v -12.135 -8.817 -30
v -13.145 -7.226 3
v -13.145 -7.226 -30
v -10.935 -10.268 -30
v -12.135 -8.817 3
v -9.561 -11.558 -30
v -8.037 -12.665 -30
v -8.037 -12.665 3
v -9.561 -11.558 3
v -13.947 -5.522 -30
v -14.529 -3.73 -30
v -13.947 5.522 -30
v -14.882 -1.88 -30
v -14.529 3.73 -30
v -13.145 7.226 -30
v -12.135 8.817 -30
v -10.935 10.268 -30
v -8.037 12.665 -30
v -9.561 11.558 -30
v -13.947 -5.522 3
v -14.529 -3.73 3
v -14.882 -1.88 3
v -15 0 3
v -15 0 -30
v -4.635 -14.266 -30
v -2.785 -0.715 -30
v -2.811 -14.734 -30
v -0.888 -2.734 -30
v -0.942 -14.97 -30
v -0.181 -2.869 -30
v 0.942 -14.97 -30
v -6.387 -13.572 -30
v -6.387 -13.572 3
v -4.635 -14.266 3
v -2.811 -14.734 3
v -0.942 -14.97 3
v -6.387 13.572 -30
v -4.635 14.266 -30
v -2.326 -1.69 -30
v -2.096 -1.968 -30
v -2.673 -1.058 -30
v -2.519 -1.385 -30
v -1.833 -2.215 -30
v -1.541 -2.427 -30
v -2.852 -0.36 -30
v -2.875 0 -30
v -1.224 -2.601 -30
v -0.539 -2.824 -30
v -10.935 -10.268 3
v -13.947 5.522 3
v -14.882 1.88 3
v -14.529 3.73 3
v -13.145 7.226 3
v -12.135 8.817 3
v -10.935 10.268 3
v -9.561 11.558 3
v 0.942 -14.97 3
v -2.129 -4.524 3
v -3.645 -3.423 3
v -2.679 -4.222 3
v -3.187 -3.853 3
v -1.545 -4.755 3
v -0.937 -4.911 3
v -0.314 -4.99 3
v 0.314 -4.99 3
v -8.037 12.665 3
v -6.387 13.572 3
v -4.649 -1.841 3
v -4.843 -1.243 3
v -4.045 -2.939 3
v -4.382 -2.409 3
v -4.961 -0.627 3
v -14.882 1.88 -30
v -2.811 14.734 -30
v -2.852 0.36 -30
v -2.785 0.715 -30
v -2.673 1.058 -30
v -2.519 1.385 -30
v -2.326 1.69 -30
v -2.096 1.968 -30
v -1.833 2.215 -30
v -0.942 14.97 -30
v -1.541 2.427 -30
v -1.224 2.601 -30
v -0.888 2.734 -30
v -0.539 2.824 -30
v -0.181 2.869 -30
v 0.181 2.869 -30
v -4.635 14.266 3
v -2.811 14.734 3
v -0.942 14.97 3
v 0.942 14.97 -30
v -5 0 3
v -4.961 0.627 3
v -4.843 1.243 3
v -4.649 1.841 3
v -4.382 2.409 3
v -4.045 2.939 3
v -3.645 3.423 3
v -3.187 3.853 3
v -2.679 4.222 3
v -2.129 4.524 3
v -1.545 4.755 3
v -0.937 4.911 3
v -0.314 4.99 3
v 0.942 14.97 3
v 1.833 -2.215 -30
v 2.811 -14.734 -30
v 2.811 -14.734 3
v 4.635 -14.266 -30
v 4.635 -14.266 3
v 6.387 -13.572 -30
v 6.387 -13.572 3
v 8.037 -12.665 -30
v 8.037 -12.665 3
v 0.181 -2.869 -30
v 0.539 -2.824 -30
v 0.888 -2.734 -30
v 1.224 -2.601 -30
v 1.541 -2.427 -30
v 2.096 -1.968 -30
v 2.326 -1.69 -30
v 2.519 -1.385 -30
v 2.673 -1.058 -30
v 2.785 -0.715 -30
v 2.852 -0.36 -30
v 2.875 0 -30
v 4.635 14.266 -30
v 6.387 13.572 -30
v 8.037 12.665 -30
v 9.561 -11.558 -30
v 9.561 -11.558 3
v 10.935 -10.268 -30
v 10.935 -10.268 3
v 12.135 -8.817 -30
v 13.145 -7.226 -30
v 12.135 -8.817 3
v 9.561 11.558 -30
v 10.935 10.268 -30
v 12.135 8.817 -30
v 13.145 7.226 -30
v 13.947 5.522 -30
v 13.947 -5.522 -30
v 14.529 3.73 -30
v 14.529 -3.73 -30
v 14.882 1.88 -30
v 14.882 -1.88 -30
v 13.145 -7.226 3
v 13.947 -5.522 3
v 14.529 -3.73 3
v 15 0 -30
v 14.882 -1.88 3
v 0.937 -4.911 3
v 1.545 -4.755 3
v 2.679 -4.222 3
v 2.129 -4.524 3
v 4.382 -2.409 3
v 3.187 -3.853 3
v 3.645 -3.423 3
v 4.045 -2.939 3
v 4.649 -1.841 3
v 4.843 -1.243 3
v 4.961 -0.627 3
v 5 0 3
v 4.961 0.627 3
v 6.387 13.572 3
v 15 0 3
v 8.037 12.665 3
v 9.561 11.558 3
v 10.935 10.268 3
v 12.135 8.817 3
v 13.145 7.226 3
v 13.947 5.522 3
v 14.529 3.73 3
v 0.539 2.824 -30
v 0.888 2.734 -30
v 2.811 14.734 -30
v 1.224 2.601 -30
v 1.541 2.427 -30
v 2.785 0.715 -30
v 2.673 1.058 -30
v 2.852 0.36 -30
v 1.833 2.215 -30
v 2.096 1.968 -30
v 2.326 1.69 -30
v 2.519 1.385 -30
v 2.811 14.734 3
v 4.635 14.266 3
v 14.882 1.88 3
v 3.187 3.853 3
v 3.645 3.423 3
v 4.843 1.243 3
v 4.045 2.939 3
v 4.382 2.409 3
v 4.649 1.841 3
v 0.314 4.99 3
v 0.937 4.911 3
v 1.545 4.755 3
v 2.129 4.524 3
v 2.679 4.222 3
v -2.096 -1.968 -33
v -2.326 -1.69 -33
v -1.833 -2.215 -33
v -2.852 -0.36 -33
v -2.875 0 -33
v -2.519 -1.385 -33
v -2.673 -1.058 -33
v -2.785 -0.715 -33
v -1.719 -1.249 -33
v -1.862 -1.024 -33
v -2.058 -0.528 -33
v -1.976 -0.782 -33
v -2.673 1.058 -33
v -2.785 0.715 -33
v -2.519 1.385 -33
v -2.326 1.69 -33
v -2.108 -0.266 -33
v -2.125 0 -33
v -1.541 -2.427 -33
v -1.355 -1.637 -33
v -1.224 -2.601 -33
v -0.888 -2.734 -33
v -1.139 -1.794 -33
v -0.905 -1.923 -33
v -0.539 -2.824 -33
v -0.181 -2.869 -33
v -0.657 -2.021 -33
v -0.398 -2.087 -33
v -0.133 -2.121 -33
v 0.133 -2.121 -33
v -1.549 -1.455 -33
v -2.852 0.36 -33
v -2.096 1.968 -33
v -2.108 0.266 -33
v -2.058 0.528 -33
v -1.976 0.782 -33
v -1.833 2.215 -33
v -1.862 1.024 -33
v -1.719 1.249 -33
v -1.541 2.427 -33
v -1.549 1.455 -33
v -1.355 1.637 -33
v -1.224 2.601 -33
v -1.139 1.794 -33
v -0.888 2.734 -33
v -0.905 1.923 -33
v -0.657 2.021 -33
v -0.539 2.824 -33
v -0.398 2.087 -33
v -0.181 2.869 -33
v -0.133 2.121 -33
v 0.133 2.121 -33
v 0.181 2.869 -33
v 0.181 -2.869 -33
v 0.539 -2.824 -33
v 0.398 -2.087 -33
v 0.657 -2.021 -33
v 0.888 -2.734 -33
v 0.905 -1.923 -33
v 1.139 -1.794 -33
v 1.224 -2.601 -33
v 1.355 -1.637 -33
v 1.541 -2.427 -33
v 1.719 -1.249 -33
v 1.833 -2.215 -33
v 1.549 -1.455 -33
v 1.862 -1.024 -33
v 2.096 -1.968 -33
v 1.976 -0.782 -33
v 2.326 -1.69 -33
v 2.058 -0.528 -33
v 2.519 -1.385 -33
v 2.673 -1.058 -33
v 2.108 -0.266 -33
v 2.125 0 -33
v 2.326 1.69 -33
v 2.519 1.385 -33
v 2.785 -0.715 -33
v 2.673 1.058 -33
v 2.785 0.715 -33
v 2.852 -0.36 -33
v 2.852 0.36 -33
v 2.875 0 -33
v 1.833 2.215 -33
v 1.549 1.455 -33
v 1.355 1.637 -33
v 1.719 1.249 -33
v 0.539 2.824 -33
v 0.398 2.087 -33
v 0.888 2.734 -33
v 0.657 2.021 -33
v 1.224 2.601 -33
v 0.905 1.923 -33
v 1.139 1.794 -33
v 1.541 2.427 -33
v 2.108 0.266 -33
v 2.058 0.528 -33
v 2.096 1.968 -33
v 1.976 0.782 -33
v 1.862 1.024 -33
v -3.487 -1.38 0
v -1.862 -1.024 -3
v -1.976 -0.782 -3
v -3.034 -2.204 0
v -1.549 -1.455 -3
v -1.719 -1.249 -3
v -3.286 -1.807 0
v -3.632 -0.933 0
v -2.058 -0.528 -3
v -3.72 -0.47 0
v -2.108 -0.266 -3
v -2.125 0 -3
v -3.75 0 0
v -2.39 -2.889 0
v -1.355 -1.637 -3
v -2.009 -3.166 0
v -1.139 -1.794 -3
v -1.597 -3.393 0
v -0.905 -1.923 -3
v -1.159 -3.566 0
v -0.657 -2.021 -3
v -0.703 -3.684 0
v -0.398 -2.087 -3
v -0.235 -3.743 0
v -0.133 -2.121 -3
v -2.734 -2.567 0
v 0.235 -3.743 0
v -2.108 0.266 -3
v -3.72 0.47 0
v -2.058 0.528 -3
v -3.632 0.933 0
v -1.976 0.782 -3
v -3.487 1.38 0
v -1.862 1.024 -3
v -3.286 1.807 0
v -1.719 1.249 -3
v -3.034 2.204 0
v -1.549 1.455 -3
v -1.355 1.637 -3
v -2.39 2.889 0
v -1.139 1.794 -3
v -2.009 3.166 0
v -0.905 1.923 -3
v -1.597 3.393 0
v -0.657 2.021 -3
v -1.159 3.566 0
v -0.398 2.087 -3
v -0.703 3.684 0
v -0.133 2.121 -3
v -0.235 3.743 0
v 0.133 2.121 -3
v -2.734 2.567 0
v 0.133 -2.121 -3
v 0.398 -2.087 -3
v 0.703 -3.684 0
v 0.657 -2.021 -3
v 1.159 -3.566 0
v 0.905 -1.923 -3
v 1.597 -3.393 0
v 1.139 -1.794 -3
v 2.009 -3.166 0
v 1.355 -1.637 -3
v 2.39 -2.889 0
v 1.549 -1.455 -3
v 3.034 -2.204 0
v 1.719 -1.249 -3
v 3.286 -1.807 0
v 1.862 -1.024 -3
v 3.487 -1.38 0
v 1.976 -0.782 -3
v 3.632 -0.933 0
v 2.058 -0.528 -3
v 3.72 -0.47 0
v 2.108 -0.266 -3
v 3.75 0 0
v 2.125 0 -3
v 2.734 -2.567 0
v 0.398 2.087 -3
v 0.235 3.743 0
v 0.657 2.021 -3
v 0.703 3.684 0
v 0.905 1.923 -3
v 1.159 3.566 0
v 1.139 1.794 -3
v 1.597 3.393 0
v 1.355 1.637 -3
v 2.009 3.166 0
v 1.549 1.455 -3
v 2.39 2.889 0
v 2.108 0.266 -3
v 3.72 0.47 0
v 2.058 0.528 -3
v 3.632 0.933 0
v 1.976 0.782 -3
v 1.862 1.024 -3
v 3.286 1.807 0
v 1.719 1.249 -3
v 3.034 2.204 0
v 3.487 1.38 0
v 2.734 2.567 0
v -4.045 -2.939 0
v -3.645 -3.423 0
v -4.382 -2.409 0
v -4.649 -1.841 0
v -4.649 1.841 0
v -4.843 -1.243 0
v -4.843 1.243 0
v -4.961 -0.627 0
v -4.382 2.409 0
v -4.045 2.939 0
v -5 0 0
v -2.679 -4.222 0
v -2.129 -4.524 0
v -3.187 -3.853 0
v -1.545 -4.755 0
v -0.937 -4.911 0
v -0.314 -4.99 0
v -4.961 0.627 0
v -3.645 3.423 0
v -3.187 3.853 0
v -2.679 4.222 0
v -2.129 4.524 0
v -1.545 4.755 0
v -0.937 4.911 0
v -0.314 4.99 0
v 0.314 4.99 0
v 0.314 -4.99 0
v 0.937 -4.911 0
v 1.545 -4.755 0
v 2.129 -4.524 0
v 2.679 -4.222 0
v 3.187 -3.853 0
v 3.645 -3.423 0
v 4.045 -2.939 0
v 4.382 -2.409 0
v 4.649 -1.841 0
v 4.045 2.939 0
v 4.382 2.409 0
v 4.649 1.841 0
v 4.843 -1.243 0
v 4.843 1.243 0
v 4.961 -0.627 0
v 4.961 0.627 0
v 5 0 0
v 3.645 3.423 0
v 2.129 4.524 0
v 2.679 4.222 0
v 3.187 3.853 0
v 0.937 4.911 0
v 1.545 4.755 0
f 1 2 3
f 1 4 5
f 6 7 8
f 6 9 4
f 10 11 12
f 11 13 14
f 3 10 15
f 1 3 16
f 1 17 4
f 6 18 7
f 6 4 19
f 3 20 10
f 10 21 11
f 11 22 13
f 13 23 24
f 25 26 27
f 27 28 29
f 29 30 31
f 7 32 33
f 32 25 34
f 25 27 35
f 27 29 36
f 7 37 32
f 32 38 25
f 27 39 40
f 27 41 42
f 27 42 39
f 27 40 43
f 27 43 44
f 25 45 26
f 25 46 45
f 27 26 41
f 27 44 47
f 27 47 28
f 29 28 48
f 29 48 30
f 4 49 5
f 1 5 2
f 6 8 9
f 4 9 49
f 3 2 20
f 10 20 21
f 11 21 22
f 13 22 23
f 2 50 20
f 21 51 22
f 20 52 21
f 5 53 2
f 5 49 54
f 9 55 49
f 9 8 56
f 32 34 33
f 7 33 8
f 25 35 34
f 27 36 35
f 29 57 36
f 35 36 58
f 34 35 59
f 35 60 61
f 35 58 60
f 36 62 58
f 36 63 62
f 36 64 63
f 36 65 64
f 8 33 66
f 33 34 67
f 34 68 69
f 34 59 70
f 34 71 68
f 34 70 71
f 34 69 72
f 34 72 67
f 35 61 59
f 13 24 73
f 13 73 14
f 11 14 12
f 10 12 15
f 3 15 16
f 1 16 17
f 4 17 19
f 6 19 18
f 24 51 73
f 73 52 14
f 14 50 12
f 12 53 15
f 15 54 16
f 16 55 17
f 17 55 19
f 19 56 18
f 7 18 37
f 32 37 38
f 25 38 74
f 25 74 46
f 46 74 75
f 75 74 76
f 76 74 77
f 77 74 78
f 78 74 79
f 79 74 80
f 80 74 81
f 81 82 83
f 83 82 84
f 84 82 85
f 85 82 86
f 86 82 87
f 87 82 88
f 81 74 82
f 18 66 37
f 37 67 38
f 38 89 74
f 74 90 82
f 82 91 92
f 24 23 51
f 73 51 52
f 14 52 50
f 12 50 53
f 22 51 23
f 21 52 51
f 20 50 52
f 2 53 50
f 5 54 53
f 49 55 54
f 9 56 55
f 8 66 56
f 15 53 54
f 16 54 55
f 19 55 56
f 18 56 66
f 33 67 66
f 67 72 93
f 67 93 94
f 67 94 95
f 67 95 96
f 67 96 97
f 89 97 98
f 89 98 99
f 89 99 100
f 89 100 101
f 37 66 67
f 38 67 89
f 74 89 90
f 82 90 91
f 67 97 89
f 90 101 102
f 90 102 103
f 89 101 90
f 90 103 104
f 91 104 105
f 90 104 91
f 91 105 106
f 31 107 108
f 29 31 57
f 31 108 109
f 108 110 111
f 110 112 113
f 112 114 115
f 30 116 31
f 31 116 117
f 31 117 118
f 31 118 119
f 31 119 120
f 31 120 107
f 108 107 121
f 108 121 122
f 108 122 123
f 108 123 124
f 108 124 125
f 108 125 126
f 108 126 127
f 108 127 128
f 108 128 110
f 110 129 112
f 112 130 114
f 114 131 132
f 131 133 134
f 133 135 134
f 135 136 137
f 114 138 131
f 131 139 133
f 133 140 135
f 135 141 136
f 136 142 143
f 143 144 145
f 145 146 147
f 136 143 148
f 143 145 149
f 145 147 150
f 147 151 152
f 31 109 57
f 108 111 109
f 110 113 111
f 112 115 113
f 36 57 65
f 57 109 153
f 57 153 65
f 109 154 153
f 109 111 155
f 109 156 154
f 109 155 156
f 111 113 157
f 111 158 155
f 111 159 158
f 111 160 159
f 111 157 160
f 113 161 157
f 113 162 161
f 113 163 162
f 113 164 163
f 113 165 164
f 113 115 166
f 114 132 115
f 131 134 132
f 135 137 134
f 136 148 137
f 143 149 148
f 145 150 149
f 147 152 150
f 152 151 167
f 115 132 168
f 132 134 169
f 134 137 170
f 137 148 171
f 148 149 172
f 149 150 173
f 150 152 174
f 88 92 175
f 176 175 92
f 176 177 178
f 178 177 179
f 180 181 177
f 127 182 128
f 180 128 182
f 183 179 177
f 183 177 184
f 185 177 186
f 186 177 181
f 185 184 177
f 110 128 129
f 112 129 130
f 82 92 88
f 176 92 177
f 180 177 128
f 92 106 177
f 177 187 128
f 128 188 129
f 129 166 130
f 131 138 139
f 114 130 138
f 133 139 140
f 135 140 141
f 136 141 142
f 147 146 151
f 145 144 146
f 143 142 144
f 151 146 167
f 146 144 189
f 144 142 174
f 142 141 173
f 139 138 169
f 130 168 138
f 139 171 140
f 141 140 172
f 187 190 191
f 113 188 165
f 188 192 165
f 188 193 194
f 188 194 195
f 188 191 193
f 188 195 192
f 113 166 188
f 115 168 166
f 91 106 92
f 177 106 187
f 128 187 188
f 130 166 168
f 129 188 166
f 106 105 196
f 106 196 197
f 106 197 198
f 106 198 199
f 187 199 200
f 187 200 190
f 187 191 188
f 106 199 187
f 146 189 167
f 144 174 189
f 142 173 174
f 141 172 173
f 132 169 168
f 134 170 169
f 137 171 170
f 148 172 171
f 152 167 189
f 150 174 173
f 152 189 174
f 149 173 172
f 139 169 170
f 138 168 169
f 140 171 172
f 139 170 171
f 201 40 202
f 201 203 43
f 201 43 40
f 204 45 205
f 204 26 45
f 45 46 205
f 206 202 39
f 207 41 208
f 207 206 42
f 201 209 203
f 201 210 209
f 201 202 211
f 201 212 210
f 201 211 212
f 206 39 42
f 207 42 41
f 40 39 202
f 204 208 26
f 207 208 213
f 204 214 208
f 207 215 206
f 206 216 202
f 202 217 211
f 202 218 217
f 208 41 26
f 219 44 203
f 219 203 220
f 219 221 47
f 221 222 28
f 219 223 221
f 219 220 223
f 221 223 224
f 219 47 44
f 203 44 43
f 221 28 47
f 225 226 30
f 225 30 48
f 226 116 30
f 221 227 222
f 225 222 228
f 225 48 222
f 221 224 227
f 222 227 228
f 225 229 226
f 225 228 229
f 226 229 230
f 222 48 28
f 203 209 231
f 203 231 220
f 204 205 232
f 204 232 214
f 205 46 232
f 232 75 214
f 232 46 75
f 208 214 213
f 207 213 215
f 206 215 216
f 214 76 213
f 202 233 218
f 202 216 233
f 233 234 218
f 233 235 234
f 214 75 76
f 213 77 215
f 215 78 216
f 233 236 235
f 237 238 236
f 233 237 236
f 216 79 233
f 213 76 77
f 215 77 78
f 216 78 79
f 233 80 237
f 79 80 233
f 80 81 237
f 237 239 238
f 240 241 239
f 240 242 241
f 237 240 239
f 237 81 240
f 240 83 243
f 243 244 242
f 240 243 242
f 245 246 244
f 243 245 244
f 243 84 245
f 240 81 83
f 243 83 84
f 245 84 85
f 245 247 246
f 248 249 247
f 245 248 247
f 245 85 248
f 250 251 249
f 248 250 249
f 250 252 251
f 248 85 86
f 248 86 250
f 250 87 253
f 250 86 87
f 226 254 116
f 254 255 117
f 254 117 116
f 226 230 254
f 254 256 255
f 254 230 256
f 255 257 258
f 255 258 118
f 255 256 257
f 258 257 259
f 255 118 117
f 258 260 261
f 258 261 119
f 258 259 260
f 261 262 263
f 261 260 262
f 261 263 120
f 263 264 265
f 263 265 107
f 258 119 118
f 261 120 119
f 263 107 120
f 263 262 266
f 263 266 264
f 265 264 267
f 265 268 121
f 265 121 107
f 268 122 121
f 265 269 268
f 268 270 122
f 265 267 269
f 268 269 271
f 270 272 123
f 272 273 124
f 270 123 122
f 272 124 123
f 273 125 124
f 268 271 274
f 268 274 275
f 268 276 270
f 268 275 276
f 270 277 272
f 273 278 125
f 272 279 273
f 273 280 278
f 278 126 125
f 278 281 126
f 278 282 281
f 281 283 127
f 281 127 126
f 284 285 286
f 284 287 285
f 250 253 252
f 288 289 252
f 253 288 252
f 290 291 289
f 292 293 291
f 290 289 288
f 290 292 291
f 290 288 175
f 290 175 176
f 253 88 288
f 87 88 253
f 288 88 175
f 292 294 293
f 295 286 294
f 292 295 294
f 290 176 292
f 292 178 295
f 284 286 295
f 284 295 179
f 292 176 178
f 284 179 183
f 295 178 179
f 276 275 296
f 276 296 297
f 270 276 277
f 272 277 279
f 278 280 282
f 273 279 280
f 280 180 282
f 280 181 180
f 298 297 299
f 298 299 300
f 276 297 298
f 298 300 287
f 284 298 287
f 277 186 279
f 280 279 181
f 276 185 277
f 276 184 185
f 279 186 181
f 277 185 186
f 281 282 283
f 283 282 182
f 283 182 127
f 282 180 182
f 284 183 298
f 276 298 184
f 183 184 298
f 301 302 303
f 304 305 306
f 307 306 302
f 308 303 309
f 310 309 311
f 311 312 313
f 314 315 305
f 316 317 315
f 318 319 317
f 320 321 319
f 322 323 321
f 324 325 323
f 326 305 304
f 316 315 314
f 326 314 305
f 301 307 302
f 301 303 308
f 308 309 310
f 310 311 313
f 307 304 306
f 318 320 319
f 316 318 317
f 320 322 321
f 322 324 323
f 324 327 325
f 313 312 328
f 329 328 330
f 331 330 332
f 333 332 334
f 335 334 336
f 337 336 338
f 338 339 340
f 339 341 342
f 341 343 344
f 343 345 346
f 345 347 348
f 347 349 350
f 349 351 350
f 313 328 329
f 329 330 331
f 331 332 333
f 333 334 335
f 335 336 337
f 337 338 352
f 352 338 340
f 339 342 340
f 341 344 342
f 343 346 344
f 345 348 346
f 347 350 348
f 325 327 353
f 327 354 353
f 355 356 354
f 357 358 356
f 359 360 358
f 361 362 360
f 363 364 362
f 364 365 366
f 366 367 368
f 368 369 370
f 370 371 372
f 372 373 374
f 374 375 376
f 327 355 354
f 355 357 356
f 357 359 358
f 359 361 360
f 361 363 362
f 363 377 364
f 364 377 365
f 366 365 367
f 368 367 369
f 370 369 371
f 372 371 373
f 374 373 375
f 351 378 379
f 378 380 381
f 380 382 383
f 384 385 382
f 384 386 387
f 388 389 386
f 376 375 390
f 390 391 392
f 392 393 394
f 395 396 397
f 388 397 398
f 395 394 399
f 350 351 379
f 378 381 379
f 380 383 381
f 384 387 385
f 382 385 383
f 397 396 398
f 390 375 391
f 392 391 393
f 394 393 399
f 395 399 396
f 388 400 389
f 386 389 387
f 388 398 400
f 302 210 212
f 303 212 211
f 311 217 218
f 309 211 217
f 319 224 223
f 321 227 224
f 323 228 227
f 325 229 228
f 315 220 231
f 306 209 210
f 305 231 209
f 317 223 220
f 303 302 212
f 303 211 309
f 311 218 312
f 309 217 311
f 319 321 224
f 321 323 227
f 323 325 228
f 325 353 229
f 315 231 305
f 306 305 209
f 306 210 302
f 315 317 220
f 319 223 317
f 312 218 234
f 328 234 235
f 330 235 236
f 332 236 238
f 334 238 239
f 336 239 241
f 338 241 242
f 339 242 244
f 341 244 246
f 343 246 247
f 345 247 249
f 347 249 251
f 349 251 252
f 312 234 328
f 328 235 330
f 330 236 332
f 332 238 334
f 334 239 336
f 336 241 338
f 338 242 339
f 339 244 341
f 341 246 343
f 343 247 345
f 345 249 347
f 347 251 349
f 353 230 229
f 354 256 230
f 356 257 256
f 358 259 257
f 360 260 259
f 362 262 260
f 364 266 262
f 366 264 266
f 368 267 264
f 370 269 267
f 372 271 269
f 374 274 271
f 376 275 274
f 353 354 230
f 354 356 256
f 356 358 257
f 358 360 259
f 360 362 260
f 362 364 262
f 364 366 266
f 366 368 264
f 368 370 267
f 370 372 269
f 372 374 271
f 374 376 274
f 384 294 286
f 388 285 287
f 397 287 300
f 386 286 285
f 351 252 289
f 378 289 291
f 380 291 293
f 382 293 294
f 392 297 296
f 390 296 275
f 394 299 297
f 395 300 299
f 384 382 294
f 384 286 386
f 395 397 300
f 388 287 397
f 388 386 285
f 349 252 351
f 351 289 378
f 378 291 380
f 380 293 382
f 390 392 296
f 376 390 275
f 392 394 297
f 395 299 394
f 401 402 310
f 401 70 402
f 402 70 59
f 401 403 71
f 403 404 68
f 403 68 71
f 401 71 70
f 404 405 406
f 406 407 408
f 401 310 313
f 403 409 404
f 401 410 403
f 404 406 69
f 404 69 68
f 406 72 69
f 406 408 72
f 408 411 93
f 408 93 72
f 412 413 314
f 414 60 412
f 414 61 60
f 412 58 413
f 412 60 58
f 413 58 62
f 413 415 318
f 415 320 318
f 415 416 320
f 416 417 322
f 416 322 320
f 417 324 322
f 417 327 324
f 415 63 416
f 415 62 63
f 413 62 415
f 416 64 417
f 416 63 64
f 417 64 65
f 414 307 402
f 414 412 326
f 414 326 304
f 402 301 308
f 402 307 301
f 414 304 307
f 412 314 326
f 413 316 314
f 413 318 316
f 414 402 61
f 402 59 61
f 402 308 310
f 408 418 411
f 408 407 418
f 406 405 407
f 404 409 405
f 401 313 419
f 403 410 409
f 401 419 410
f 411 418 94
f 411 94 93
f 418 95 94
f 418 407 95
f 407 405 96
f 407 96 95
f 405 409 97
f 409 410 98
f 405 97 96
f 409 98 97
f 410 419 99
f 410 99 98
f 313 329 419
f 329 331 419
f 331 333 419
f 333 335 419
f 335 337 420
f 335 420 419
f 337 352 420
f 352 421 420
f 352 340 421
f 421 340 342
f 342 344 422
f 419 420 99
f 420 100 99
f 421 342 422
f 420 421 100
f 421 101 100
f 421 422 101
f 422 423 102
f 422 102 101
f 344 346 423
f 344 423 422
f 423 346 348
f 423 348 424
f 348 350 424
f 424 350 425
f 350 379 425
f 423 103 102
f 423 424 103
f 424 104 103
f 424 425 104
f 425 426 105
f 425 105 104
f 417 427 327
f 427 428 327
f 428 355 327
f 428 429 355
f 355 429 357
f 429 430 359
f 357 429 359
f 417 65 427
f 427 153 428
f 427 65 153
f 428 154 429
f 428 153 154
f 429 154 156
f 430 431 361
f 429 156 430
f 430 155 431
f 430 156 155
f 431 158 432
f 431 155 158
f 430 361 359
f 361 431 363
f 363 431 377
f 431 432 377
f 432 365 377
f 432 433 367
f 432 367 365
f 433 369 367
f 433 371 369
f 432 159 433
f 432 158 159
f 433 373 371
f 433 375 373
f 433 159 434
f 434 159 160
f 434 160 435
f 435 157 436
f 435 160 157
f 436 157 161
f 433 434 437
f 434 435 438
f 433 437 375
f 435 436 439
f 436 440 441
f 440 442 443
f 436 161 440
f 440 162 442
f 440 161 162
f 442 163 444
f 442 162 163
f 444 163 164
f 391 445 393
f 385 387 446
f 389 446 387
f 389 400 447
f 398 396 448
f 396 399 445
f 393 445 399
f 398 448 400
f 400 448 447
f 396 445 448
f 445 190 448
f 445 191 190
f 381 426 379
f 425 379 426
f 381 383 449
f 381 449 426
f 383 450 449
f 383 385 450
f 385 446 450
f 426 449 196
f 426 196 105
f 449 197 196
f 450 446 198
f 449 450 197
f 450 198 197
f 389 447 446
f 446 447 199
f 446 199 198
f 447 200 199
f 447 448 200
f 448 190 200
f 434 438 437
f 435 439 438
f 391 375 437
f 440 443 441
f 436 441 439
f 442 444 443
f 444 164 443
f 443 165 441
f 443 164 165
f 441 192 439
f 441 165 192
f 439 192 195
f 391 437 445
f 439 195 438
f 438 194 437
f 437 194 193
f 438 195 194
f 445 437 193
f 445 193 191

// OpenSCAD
$fn = 50;


difference() {
	union() {
		translate(v = [0, 0, -30.0000000000]) {
			cylinder(h = 33, r = 15.0000000000);
		}
		#translate(v = [0, 0, -33.0000000000]) {
			cylinder(h = 33, r = 2.8750000000);
		}
	}
	union() {
		translate(v = [0, 0, 0]) {
			rotate(a = [0, 0, 0]) {
				difference() {
					union() {
						translate(v = [0, 0, -33.0000000000]) {
							cylinder(h = 33, r = 2.0000000000);
						}
						translate(v = [0, 0, -3]) {
							cylinder(h = 3, r1 = 2.1250000000, r2 = 3.7500000000);
						}
						translate(v = [0, 0, -33.0000000000]) {
							cylinder(h = 33, r = 2.1250000000);
						}
						translate(v = [0, 0, -33.0000000000]) {
							cylinder(h = 33, r = 2.0000000000);
						}
					}
					union();
				}
			}
		}
		#cylinder(h = 3, r = 5.0000000000);
	}
}
